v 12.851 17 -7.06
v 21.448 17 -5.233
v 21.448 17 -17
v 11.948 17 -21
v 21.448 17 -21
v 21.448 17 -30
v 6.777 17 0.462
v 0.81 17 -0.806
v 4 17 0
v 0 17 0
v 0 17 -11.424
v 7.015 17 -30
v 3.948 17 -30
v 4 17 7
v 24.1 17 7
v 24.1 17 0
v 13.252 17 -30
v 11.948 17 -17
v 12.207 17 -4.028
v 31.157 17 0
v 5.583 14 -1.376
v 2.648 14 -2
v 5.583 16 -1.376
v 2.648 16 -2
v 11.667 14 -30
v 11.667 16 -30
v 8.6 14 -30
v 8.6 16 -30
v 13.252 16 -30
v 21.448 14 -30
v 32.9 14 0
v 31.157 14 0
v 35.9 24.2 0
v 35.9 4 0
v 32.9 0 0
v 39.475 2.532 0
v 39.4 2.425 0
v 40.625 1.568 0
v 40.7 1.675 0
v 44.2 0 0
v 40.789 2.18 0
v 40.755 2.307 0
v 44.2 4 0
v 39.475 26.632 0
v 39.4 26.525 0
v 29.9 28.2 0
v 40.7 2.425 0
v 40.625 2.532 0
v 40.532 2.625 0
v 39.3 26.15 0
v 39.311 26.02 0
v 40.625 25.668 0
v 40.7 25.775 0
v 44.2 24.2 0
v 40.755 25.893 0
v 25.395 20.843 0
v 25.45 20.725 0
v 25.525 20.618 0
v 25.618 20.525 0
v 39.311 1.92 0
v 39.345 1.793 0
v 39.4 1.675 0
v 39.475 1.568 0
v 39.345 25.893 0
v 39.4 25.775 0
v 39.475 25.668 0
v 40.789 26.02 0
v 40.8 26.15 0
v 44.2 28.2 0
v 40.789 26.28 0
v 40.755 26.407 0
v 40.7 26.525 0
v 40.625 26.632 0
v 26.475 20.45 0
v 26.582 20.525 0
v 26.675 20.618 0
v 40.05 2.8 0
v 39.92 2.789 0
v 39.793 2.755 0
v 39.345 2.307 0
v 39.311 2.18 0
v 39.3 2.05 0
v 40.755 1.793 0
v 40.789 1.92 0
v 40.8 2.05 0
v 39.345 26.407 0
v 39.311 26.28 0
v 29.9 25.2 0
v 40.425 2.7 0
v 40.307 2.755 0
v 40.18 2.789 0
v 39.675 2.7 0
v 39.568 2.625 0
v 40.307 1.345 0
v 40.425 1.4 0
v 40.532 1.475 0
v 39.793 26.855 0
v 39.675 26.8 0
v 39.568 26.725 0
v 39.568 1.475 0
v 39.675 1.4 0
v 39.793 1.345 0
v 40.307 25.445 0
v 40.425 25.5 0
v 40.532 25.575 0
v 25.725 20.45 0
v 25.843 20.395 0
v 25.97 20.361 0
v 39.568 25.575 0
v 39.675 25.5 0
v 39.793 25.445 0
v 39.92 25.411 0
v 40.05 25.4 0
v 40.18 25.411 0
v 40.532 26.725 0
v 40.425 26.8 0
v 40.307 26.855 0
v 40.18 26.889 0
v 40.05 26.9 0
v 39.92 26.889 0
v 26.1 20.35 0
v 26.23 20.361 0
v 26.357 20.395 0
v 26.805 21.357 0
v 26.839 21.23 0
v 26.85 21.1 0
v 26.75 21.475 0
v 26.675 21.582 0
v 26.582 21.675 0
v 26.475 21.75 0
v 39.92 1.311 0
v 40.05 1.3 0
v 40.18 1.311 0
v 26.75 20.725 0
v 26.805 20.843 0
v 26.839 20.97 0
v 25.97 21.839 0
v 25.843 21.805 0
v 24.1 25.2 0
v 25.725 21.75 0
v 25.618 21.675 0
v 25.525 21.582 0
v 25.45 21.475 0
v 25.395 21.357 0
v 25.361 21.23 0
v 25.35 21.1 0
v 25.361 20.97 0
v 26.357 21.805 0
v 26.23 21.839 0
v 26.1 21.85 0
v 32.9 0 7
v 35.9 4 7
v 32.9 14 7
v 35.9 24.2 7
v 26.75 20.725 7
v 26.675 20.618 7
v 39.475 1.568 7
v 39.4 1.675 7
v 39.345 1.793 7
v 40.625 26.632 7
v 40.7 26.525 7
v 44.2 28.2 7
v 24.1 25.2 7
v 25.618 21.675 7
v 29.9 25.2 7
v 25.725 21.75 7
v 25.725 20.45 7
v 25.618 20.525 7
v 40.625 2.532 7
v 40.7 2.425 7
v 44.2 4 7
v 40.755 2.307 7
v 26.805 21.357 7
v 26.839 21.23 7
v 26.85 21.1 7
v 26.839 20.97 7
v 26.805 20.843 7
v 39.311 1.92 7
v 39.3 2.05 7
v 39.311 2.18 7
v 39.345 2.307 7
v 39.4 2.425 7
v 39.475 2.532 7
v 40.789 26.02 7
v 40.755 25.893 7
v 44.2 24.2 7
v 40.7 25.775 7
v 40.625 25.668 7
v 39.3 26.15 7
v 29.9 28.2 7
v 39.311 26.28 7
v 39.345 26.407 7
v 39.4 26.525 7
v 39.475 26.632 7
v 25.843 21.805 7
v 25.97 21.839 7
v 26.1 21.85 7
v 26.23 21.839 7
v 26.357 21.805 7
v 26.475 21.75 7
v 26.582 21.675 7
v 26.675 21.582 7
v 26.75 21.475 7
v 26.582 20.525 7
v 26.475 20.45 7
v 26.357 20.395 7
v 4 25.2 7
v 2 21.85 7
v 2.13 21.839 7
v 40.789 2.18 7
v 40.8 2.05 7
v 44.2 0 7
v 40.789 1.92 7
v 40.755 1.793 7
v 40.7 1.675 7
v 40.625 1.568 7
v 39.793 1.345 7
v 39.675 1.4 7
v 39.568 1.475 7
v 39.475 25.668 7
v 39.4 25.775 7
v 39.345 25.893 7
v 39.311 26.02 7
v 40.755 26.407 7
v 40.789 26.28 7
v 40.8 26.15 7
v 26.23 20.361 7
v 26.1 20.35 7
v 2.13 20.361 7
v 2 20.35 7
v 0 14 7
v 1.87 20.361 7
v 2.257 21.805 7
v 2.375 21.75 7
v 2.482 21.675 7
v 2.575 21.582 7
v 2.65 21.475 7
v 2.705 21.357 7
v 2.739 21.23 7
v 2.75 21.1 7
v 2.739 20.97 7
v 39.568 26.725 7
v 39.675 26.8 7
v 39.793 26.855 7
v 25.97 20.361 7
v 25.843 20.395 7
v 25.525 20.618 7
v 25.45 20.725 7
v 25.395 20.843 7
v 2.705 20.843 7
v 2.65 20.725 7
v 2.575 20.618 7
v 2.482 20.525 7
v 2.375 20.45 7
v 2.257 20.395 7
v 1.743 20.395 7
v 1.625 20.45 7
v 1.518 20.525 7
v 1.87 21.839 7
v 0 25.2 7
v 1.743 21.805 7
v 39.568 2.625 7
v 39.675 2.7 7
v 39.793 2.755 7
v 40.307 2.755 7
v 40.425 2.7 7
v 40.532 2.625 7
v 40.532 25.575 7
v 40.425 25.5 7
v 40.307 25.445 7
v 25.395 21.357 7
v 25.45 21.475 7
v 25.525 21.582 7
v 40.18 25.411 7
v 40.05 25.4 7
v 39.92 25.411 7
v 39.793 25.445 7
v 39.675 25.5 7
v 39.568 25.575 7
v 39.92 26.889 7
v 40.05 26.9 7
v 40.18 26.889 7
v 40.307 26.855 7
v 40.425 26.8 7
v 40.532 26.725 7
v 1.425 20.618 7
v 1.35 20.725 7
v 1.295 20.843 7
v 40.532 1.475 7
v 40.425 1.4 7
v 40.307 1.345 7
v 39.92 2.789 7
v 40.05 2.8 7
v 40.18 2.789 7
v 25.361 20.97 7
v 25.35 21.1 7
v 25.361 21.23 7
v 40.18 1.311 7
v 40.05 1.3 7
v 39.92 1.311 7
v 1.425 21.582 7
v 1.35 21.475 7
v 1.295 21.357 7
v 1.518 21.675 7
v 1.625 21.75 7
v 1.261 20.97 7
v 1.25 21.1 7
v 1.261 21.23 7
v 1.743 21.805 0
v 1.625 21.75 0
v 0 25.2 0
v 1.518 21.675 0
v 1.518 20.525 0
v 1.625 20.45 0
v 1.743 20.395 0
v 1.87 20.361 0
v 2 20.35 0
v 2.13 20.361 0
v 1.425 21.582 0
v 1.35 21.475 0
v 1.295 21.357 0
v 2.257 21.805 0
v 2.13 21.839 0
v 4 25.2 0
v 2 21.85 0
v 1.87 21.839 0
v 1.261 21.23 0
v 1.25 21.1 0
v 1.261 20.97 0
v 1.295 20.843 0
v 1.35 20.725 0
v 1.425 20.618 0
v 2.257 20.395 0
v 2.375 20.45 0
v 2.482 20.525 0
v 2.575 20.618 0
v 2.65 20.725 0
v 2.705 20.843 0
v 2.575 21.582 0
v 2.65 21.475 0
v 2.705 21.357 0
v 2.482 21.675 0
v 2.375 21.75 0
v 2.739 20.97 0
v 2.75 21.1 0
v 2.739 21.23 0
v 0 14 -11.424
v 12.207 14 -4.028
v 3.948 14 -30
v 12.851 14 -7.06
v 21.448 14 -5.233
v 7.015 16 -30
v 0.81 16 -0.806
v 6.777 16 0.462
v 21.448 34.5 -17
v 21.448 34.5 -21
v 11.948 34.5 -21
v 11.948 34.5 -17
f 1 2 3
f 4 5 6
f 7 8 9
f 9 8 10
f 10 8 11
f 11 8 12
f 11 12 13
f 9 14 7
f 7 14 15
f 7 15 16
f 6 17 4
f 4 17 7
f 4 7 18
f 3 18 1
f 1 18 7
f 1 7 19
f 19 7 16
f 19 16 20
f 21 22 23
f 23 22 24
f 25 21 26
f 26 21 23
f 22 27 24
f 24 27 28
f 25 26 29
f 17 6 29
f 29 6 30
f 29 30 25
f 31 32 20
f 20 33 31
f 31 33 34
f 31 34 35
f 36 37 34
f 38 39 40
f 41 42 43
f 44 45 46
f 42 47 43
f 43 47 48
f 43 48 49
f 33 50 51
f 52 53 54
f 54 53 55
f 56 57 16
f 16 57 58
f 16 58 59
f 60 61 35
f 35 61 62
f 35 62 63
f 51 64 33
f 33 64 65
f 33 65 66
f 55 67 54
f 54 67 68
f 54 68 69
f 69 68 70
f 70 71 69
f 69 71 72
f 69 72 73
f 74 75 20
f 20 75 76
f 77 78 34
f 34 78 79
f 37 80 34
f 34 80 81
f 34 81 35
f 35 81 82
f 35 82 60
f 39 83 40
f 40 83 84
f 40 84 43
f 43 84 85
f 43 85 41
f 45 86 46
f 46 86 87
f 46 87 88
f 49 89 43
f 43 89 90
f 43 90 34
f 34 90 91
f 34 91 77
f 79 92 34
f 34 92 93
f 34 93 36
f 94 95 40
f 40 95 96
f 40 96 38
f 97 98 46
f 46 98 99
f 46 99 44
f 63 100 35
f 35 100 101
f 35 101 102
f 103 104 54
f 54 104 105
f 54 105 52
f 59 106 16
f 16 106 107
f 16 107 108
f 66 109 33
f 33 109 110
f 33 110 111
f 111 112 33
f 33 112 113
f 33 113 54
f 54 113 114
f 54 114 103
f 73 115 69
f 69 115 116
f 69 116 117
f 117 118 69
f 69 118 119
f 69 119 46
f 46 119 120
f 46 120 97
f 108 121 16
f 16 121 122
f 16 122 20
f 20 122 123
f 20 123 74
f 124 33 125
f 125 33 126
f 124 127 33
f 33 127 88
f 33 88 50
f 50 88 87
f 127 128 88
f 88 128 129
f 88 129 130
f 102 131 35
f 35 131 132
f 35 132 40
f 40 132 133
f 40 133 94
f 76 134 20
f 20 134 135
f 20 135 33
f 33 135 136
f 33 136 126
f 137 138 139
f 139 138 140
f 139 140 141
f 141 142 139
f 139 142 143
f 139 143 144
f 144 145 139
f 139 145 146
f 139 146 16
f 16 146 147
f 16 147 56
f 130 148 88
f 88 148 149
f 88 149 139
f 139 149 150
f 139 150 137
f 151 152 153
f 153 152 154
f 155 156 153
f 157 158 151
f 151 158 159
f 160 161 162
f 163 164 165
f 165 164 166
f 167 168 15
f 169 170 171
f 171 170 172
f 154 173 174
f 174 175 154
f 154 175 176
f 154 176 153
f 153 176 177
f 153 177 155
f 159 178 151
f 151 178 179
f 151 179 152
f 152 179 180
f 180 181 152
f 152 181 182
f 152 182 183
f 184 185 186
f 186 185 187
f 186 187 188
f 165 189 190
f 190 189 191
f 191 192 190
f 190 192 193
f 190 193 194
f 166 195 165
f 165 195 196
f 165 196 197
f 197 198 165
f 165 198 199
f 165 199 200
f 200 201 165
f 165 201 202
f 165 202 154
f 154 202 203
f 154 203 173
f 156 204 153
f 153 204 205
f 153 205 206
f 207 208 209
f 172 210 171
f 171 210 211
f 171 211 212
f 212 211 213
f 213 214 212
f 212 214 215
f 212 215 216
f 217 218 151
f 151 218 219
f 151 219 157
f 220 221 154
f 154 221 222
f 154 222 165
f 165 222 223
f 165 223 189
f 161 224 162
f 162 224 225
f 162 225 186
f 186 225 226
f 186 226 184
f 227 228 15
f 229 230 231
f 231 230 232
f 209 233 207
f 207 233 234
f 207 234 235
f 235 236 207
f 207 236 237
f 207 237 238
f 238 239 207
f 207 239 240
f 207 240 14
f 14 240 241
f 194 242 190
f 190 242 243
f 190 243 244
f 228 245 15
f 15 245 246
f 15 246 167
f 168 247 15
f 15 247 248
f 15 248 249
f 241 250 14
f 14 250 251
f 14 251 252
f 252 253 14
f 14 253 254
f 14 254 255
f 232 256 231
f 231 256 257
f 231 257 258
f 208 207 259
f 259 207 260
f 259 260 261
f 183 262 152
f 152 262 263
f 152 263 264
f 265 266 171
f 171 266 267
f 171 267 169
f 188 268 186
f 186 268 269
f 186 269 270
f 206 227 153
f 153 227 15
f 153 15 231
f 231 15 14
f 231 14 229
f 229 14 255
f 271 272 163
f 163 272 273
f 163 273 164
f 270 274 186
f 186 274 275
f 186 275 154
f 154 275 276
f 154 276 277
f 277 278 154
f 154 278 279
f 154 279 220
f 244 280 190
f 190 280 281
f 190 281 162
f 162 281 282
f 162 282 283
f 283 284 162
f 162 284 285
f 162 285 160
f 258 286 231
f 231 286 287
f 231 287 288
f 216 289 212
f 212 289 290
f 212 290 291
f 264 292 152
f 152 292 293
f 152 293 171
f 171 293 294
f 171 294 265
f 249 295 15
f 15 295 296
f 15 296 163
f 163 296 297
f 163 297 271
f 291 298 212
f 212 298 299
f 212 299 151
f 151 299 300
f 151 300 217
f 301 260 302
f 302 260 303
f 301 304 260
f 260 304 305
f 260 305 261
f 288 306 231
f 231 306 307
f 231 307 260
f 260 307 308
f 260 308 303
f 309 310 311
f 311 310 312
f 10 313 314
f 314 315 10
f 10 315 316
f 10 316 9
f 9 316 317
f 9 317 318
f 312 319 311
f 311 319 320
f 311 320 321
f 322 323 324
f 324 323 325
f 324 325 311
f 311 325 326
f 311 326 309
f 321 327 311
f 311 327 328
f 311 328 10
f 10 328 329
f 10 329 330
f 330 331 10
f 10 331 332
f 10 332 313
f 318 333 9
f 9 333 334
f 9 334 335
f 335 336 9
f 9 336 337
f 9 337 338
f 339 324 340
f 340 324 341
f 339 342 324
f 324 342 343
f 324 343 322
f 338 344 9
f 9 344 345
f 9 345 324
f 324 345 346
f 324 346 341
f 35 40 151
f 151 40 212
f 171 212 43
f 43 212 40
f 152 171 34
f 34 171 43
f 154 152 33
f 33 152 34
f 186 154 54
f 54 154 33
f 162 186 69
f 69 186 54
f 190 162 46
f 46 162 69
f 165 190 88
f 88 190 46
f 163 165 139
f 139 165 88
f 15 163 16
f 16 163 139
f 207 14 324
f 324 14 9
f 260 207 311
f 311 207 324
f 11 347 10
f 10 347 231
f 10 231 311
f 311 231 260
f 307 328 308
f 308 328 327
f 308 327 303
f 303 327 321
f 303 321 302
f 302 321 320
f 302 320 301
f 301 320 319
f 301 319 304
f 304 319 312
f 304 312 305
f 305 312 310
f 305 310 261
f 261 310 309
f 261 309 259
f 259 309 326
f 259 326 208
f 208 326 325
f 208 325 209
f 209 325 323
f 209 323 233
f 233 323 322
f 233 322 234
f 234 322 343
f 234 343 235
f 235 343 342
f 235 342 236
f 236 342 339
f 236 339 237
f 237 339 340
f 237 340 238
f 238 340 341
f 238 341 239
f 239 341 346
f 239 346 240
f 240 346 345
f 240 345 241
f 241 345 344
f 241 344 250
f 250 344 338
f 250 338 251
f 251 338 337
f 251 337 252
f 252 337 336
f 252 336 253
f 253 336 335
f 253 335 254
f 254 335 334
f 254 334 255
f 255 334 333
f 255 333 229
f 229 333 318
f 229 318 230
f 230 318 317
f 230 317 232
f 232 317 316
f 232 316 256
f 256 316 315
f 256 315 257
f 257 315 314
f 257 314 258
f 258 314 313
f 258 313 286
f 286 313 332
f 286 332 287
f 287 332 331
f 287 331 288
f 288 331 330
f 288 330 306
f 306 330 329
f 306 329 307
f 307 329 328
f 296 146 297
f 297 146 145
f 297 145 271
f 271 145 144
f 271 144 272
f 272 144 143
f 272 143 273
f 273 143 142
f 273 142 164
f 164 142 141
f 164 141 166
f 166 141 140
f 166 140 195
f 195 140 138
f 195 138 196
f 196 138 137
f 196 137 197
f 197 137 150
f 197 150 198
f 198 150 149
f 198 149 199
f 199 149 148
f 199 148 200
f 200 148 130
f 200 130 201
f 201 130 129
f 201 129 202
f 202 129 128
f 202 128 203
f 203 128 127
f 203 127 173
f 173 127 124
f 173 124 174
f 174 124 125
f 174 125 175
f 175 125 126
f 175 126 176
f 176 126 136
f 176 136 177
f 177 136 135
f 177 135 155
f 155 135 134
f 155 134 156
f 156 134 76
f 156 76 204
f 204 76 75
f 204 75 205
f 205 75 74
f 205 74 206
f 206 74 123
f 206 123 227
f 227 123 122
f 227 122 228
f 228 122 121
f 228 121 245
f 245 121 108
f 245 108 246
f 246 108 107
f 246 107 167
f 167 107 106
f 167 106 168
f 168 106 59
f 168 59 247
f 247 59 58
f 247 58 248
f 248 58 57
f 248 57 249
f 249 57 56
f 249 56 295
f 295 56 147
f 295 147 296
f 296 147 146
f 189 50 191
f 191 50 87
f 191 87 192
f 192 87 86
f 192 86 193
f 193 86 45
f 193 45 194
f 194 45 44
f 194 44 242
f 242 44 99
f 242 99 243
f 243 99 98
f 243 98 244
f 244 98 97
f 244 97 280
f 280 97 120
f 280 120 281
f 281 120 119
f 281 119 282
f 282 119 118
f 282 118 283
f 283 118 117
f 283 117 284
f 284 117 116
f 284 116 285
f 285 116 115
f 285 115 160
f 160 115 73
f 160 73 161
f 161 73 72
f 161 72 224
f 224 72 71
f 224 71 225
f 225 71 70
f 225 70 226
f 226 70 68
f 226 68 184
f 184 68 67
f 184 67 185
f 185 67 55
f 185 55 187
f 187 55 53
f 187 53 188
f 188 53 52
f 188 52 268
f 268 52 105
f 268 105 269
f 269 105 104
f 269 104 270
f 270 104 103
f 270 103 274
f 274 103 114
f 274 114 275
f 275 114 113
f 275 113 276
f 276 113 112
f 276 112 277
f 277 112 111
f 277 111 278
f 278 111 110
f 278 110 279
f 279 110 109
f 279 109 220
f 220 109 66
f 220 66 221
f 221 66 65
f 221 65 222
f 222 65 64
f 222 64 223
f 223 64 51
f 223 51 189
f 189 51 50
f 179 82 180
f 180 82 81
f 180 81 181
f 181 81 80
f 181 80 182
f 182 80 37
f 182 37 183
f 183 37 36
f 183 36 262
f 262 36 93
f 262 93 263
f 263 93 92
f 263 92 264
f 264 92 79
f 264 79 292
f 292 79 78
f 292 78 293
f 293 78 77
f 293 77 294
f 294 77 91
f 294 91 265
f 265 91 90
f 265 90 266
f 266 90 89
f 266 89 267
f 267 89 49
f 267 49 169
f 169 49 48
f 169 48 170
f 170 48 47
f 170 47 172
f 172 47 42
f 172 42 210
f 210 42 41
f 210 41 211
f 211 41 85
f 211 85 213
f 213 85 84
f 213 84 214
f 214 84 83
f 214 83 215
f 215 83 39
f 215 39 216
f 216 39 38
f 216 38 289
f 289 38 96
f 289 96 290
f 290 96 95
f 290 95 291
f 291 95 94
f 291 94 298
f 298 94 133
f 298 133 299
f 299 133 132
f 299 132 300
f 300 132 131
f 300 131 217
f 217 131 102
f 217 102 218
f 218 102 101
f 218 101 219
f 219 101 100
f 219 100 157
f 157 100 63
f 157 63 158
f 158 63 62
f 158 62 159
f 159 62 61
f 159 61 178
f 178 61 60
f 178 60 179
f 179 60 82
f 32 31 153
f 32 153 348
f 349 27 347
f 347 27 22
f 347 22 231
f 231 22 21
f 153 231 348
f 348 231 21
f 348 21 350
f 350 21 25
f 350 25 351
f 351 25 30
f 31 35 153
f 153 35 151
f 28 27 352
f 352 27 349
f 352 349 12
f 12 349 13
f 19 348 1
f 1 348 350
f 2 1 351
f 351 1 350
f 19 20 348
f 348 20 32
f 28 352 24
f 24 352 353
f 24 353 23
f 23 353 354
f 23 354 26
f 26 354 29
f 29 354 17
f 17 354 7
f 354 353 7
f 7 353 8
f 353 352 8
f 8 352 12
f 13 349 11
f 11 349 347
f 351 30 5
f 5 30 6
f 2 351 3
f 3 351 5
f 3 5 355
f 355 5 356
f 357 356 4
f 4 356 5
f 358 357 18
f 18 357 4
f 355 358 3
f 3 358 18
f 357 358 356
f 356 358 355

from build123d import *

# Parameters (mm, degrees)
SKETCH1_R               = 0.75
BOSS_EXTRUDE1_DEPTH     = 7
SKETCH9_W               = 32.9
SKETCH9_H               = 14
CUT_EXTRUDE1_DEPTH      = 53.894990311
SKETCH10_W              = 24.1
SKETCH10_H              = 3
BOSS_EXTRUDE2_DEPTH     = 30
CUT_EXTRUDE2_DEPTH      = 57.059254365
CUT_EXTRUDE3_DEPTH      = 57.059254365
CUT_EXTRUDE4_DEPTH      = 1
CUT_EXTRUDE5_DEPTH      = 57.059254365
BOSS_EXTRUDE4_START     = 4
BOSS_EXTRUDE4_OUTLINE_W = 19.373526859
BOSS_EXTRUDE4_OUTLINE_H = 3
BOSS_EXTRUDE4_DEPTH     = 2.47789315
SKETCH21_W              = 25.330744156
SKETCH21_H              = 3
BOSS_EXTRUDE7_DEPTH     = 4
BOSS_EXTRUDE8_START     = 14
BOSS_EXTRUDE8_DEPTH     = 3
CUT_EXTRUDE6_REACH      = 66.171
SKETCH23_W              = 6.651649707
SKETCH23_H              = 3
SKETCH24_W              = 9.5
SKETCH24_H              = 4
BOSS_EXTRUDE9_DEPTH     = 17.5


with BuildPart() as part:
    # Sketch1 → Boss-Extrude1 (new body)
    with BuildSketch(Plane.XY):
        Polygon((0, 0), (0, 25.2), (4, 25.2), (4, 17), (24.1, 17), (24.1, 25.2), (29.9, 25.2), (29.9, 28.2), (44.2, 28.2), (44.2, 24.2), (35.9, 24.2), (35.9, 4), (44.2, 4), (44.2, 0), align=None)
        with Locations((2, 21.1)):
            Circle(SKETCH1_R, mode=Mode.SUBTRACT)
        with Locations((26.1, 21.1)):
            Circle(SKETCH1_R, mode=Mode.SUBTRACT)
        with Locations((40.05, 26.15)):
            Circle(SKETCH1_R, mode=Mode.SUBTRACT)
        with Locations((40.05, 2.05)):
            Circle(SKETCH1_R, mode=Mode.SUBTRACT)
    extrude(amount=BOSS_EXTRUDE1_DEPTH)

    # Sketch9 → Cut-Extrude1 (cut, through all)
    with BuildSketch(Plane.XY.offset(7)):
        with Locations((16.45, 7)):
            Rectangle(SKETCH9_W, SKETCH9_H)
    extrude(amount=-CUT_EXTRUDE1_DEPTH, mode=Mode.SUBTRACT)

    # Sketch10 → Boss-Extrude2 (add)
    with BuildSketch(Plane(origin=(0, 0, 0), x_dir=(-1, 0, 0), z_dir=(0, 0, -1))):
        with Locations((-12.05, 15.5)):
            Rectangle(SKETCH10_W, SKETCH10_H)
    extrude(amount=BOSS_EXTRUDE2_DEPTH)

    # Sketch11 → Cut-Extrude2 (cut, through all)
    with BuildSketch(Plane(origin=(0, 17, 0), x_dir=(1, 0, 0), z_dir=(0, 1, 0))):
        Polygon((8.6, 30), (2.648416273, 2), (5.582859075, 1.376264928), (11.667021785, 30), align=None)
    extrude(amount=-CUT_EXTRUDE2_DEPTH, mode=Mode.SUBTRACT)

    # Sketch12 → Cut-Extrude3 (cut, through all)
    with BuildSketch(Plane(origin=(0, 17, 0), x_dir=(1, 0, 0), z_dir=(0, 1, 0))):
        Polygon((12.20677635, 4.027982726), (24.1, 1.5), (24.1, 4.669255844), (12.851302592, 7.060240288), align=None)
    extrude(amount=-CUT_EXTRUDE3_DEPTH, mode=Mode.SUBTRACT)

    # Sketch14 → Cut-Extrude4 (cut)
    with BuildSketch(Plane(origin=(0, 17, 0), x_dir=(1, 0, 0), z_dir=(0, 1, 0))):
        Polygon((7.015372078, 30), (0.810024371, 0.80613434), (6.776724736, -0.462126974), (13.251649707, 30), align=None)
    extrude(amount=-CUT_EXTRUDE4_DEPTH, mode=Mode.SUBTRACT)

    # Sketch15 → Cut-Extrude5 (cut, through all)
    with BuildSketch(Plane(origin=(0, 17, 0), x_dir=(1, 0, 0), z_dir=(0, 1, 0))):
        Polygon((3.948350293, 30), (0, 11.424472327), (0, 30), align=None)
    extrude(amount=-CUT_EXTRUDE5_DEPTH, mode=Mode.SUBTRACT)

    # Boss-Extrude4: read off the stored shape, not the designer's step
    # Boss-Extrude4 outline → Boss-Extrude4 (add)
    with BuildSketch(Plane(origin=(0, 0, 0), x_dir=(0.9781476007338054, 0, 0.20791169081776006), z_dir=(0.2079116908177601, 0, -0.9781476007338055)).offset(BOSS_EXTRUDE4_START)):
        with Locations((20.78932773, -15.5)):
            Rectangle(BOSS_EXTRUDE4_OUTLINE_W, BOSS_EXTRUDE4_OUTLINE_H)
    extrude(amount=BOSS_EXTRUDE4_DEPTH)

    # Sketch21 → Boss-Extrude7 (add)
    with BuildSketch(Plane(origin=(24.1, 0, 0), x_dir=(0, 0, -1), z_dir=(1, 0, 0))):
        with Locations((17.334627922, 15.5)):
            Rectangle(SKETCH21_W, SKETCH21_H)
    extrude(amount=BOSS_EXTRUDE7_DEPTH)

    # Boss-Extrude8: read off the stored shape, not the designer's step
    # Boss-Extrude8 outline → Boss-Extrude8 (add)
    with BuildSketch(Plane(origin=(0, 0, 0), x_dir=(1, 0, 0), z_dir=(0, 1, 0)).offset(BOSS_EXTRUDE8_START)):
        Polygon((24.1, 4.669255844), (28.1, 3.819029597), (28.1, 4.669255844), align=None)
    extrude(amount=BOSS_EXTRUDE8_DEPTH)

    # Cut-Extrude6: up to this plane
    cut_extrude6_end = Plane(origin=(1.991355959, 0, -9.368593205), z_dir=(0.20791169081775973, 0, -0.9781476007338056))
    # Sketch23 → Cut-Extrude6 (cut, up to the surface)
    with BuildSketch(Plane(origin=(0, 0, -30), x_dir=(-1, 0, 0), z_dir=(0, 0, -1)), mode=Mode.PRIVATE) as cut_extrude6_sk1:
        with Locations((-24.774175146, 15.5)):
            Rectangle(SKETCH23_W, SKETCH23_H)
    cut_extrude6_tool1 = split(extrude(cut_extrude6_sk1.sketch, amount=-CUT_EXTRUDE6_REACH, mode=Mode.PRIVATE), bisect_by=cut_extrude6_end, keep=Keep.BOTH, mode=Mode.PRIVATE)
    add(cut_extrude6_tool1.solids().sort_by_distance((24.774175, 15.5, -30))[0], mode=Mode.SUBTRACT)

    # Sketch24 → Boss-Extrude9 (add)
    with BuildSketch(Plane(origin=(0, 17, 0), x_dir=(1, 0, 0), z_dir=(0, 1, 0))):
        with Locations((16.698350293, 19)):
            Rectangle(SKETCH24_W, SKETCH24_H)
    extrude(amount=BOSS_EXTRUDE9_DEPTH)


solid = part.part
